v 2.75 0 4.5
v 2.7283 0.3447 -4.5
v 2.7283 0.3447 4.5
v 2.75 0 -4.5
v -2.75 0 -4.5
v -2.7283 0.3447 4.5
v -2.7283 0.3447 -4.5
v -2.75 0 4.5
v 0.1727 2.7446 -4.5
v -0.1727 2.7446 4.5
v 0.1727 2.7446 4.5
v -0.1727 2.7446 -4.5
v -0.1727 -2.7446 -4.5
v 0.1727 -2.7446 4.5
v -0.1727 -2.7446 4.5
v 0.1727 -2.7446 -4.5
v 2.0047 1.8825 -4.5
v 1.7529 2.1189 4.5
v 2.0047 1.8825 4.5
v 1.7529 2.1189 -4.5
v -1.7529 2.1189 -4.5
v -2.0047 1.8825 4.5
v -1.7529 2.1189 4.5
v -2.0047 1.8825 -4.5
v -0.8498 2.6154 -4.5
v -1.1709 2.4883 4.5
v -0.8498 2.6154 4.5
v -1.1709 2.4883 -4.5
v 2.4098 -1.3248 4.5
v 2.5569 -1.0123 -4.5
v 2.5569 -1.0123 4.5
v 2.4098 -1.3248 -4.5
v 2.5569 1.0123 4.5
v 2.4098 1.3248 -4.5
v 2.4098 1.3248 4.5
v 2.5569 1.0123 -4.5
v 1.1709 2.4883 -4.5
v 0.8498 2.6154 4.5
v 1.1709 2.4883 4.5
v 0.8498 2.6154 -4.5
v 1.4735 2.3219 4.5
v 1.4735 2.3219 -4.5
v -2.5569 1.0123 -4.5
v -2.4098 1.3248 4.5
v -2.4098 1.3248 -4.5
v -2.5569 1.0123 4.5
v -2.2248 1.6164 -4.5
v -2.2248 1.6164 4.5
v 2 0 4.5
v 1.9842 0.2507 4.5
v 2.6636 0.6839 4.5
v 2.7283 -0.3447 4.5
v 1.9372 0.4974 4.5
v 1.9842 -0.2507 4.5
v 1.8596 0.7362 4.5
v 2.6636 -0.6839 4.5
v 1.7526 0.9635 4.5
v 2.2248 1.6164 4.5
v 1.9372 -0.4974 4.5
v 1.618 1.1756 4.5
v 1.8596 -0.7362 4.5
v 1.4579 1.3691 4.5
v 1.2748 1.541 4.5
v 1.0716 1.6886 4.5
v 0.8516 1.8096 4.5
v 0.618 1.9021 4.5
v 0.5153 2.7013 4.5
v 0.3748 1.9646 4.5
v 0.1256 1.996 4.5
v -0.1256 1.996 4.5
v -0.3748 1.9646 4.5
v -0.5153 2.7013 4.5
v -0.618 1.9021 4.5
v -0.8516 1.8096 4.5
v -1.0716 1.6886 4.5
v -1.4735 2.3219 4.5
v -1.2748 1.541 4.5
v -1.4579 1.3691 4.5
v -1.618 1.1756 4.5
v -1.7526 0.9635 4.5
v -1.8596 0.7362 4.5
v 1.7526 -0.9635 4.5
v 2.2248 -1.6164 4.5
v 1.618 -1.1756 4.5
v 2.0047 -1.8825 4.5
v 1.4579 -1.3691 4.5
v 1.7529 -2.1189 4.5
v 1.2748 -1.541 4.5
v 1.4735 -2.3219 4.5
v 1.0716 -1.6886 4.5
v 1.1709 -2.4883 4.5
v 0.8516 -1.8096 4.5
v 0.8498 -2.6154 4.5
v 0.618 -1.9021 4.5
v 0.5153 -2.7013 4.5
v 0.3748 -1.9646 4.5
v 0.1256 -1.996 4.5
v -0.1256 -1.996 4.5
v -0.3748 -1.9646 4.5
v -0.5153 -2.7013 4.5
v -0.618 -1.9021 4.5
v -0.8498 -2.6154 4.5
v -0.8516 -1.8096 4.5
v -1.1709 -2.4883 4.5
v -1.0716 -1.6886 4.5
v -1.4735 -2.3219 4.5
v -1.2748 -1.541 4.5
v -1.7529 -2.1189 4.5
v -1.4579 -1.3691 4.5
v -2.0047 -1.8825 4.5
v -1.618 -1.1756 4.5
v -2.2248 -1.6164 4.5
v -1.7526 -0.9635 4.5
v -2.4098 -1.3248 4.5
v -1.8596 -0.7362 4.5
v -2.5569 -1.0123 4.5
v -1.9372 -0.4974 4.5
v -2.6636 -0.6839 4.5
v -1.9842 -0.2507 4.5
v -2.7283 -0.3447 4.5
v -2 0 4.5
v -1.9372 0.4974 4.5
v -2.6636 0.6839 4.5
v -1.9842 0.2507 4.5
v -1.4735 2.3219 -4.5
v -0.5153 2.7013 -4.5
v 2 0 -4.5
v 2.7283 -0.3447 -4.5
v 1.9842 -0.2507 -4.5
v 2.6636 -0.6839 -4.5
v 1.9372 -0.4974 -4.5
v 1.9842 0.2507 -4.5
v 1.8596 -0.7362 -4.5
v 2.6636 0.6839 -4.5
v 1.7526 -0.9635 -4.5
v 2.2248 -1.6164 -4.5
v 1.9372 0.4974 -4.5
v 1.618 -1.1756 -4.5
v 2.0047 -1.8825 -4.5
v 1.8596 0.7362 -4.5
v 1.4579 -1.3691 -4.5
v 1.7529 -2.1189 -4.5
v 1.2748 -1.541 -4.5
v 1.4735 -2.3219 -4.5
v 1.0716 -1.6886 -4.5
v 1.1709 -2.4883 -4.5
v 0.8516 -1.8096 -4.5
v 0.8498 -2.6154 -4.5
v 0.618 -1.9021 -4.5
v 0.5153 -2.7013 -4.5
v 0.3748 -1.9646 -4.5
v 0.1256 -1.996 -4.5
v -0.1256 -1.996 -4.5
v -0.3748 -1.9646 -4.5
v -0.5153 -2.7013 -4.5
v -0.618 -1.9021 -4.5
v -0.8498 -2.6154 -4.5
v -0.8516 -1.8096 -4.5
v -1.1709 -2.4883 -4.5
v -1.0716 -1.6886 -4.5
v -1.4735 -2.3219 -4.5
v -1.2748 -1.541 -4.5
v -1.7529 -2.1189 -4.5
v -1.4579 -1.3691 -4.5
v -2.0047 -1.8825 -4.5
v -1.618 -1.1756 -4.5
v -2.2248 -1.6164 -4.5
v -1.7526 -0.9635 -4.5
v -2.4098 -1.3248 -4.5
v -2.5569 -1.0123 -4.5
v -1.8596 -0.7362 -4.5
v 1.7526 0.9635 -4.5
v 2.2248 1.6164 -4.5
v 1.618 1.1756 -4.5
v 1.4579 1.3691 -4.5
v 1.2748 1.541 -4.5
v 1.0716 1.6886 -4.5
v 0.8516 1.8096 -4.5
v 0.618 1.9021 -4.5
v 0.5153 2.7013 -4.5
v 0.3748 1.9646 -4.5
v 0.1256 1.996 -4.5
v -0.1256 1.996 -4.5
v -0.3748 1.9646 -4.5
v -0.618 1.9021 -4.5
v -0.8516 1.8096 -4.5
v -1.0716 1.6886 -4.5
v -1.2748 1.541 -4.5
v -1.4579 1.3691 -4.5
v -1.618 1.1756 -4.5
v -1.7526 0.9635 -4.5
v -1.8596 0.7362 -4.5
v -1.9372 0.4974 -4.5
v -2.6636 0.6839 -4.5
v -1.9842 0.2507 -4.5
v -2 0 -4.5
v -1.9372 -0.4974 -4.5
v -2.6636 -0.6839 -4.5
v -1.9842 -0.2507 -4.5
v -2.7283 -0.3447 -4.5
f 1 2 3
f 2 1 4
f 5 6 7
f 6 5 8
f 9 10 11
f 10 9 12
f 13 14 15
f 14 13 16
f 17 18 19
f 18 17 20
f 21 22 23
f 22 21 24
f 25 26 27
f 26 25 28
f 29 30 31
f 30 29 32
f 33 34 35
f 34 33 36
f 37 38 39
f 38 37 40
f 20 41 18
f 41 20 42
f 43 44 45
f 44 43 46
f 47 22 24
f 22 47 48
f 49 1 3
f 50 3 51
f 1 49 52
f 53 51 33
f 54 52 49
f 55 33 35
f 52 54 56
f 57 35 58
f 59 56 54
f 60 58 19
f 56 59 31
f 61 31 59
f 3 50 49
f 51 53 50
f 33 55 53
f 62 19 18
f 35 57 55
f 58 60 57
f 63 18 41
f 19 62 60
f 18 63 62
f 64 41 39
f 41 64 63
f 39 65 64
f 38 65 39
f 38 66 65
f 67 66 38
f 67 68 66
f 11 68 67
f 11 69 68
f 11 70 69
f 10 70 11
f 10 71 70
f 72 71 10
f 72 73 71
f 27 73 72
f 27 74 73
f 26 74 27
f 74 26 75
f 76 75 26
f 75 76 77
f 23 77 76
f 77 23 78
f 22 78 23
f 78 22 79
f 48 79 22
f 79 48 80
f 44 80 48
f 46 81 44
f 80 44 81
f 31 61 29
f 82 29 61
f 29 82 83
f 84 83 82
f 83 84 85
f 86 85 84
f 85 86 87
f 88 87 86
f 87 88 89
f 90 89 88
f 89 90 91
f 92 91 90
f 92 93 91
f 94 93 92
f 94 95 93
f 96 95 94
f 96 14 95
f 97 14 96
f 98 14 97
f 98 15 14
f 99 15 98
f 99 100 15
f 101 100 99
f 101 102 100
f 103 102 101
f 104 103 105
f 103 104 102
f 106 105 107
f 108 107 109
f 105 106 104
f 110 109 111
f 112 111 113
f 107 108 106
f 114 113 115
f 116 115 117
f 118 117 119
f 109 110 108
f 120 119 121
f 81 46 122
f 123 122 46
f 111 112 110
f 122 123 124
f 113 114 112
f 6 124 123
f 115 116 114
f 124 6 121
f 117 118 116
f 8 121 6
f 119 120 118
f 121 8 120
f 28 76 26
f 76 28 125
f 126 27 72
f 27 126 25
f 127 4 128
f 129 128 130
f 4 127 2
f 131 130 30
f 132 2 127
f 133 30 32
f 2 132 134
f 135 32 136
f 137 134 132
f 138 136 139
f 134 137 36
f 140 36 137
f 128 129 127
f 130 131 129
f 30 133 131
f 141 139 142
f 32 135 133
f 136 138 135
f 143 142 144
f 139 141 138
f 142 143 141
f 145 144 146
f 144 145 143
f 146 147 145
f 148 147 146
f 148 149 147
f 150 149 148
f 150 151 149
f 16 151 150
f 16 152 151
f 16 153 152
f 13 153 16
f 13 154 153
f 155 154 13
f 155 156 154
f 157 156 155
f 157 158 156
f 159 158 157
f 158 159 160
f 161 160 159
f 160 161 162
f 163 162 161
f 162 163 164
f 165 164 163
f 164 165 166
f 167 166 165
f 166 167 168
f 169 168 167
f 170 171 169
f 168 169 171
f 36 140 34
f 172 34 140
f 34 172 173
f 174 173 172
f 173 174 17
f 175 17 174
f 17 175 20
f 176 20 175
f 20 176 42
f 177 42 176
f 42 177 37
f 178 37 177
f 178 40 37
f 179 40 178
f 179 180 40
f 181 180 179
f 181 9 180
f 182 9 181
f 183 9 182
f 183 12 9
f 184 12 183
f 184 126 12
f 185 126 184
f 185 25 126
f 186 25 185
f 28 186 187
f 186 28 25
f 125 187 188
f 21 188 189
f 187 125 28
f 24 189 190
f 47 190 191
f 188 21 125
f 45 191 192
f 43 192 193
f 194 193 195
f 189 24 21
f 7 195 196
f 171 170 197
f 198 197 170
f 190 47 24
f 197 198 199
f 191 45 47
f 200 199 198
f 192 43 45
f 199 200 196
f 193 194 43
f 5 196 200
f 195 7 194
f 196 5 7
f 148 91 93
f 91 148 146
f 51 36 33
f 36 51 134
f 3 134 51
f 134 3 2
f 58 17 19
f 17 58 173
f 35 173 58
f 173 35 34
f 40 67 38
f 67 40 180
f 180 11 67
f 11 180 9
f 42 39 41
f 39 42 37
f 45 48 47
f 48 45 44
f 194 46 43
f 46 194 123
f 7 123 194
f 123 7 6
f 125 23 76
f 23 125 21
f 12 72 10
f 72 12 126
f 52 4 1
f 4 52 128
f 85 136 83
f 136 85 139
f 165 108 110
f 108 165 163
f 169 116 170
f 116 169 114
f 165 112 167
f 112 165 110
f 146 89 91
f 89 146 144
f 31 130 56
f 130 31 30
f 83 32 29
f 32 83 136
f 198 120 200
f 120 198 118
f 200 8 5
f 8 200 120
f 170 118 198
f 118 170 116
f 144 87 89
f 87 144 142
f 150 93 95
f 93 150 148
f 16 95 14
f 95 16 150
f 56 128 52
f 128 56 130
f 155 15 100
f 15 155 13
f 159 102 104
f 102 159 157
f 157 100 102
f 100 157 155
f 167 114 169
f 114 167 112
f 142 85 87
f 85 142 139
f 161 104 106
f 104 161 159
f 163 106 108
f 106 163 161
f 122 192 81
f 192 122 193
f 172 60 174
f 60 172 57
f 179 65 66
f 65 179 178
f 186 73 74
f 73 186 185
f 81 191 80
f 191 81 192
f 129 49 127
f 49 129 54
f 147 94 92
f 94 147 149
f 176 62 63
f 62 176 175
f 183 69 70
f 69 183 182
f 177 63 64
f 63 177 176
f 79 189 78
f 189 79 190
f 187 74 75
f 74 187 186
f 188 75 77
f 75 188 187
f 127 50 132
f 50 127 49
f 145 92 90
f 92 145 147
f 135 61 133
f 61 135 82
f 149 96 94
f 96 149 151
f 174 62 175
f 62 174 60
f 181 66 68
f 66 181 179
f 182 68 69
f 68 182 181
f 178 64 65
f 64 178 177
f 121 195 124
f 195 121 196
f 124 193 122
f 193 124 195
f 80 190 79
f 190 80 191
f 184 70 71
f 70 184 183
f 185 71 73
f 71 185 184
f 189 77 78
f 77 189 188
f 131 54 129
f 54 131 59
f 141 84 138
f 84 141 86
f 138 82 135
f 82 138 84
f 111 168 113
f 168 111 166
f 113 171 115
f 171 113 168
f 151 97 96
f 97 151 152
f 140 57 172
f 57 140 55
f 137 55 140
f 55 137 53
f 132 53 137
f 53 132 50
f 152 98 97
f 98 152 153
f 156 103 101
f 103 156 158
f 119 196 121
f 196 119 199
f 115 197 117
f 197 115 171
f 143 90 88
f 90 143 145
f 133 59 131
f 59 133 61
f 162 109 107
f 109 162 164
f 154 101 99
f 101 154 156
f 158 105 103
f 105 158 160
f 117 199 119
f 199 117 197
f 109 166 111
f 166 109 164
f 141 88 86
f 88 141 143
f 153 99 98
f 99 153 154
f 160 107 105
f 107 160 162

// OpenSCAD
$fn = 50;


difference() {
	union() {
		translate(v = [0, 0, -4.5000000000]) {
			cylinder(h = 9, r = 2.7500000000);
		}
	}
	union() {
		translate(v = [0, 0, -100.0000000000]) {
			cylinder(h = 200, r = 2.0000000000);
		}
	}
}
